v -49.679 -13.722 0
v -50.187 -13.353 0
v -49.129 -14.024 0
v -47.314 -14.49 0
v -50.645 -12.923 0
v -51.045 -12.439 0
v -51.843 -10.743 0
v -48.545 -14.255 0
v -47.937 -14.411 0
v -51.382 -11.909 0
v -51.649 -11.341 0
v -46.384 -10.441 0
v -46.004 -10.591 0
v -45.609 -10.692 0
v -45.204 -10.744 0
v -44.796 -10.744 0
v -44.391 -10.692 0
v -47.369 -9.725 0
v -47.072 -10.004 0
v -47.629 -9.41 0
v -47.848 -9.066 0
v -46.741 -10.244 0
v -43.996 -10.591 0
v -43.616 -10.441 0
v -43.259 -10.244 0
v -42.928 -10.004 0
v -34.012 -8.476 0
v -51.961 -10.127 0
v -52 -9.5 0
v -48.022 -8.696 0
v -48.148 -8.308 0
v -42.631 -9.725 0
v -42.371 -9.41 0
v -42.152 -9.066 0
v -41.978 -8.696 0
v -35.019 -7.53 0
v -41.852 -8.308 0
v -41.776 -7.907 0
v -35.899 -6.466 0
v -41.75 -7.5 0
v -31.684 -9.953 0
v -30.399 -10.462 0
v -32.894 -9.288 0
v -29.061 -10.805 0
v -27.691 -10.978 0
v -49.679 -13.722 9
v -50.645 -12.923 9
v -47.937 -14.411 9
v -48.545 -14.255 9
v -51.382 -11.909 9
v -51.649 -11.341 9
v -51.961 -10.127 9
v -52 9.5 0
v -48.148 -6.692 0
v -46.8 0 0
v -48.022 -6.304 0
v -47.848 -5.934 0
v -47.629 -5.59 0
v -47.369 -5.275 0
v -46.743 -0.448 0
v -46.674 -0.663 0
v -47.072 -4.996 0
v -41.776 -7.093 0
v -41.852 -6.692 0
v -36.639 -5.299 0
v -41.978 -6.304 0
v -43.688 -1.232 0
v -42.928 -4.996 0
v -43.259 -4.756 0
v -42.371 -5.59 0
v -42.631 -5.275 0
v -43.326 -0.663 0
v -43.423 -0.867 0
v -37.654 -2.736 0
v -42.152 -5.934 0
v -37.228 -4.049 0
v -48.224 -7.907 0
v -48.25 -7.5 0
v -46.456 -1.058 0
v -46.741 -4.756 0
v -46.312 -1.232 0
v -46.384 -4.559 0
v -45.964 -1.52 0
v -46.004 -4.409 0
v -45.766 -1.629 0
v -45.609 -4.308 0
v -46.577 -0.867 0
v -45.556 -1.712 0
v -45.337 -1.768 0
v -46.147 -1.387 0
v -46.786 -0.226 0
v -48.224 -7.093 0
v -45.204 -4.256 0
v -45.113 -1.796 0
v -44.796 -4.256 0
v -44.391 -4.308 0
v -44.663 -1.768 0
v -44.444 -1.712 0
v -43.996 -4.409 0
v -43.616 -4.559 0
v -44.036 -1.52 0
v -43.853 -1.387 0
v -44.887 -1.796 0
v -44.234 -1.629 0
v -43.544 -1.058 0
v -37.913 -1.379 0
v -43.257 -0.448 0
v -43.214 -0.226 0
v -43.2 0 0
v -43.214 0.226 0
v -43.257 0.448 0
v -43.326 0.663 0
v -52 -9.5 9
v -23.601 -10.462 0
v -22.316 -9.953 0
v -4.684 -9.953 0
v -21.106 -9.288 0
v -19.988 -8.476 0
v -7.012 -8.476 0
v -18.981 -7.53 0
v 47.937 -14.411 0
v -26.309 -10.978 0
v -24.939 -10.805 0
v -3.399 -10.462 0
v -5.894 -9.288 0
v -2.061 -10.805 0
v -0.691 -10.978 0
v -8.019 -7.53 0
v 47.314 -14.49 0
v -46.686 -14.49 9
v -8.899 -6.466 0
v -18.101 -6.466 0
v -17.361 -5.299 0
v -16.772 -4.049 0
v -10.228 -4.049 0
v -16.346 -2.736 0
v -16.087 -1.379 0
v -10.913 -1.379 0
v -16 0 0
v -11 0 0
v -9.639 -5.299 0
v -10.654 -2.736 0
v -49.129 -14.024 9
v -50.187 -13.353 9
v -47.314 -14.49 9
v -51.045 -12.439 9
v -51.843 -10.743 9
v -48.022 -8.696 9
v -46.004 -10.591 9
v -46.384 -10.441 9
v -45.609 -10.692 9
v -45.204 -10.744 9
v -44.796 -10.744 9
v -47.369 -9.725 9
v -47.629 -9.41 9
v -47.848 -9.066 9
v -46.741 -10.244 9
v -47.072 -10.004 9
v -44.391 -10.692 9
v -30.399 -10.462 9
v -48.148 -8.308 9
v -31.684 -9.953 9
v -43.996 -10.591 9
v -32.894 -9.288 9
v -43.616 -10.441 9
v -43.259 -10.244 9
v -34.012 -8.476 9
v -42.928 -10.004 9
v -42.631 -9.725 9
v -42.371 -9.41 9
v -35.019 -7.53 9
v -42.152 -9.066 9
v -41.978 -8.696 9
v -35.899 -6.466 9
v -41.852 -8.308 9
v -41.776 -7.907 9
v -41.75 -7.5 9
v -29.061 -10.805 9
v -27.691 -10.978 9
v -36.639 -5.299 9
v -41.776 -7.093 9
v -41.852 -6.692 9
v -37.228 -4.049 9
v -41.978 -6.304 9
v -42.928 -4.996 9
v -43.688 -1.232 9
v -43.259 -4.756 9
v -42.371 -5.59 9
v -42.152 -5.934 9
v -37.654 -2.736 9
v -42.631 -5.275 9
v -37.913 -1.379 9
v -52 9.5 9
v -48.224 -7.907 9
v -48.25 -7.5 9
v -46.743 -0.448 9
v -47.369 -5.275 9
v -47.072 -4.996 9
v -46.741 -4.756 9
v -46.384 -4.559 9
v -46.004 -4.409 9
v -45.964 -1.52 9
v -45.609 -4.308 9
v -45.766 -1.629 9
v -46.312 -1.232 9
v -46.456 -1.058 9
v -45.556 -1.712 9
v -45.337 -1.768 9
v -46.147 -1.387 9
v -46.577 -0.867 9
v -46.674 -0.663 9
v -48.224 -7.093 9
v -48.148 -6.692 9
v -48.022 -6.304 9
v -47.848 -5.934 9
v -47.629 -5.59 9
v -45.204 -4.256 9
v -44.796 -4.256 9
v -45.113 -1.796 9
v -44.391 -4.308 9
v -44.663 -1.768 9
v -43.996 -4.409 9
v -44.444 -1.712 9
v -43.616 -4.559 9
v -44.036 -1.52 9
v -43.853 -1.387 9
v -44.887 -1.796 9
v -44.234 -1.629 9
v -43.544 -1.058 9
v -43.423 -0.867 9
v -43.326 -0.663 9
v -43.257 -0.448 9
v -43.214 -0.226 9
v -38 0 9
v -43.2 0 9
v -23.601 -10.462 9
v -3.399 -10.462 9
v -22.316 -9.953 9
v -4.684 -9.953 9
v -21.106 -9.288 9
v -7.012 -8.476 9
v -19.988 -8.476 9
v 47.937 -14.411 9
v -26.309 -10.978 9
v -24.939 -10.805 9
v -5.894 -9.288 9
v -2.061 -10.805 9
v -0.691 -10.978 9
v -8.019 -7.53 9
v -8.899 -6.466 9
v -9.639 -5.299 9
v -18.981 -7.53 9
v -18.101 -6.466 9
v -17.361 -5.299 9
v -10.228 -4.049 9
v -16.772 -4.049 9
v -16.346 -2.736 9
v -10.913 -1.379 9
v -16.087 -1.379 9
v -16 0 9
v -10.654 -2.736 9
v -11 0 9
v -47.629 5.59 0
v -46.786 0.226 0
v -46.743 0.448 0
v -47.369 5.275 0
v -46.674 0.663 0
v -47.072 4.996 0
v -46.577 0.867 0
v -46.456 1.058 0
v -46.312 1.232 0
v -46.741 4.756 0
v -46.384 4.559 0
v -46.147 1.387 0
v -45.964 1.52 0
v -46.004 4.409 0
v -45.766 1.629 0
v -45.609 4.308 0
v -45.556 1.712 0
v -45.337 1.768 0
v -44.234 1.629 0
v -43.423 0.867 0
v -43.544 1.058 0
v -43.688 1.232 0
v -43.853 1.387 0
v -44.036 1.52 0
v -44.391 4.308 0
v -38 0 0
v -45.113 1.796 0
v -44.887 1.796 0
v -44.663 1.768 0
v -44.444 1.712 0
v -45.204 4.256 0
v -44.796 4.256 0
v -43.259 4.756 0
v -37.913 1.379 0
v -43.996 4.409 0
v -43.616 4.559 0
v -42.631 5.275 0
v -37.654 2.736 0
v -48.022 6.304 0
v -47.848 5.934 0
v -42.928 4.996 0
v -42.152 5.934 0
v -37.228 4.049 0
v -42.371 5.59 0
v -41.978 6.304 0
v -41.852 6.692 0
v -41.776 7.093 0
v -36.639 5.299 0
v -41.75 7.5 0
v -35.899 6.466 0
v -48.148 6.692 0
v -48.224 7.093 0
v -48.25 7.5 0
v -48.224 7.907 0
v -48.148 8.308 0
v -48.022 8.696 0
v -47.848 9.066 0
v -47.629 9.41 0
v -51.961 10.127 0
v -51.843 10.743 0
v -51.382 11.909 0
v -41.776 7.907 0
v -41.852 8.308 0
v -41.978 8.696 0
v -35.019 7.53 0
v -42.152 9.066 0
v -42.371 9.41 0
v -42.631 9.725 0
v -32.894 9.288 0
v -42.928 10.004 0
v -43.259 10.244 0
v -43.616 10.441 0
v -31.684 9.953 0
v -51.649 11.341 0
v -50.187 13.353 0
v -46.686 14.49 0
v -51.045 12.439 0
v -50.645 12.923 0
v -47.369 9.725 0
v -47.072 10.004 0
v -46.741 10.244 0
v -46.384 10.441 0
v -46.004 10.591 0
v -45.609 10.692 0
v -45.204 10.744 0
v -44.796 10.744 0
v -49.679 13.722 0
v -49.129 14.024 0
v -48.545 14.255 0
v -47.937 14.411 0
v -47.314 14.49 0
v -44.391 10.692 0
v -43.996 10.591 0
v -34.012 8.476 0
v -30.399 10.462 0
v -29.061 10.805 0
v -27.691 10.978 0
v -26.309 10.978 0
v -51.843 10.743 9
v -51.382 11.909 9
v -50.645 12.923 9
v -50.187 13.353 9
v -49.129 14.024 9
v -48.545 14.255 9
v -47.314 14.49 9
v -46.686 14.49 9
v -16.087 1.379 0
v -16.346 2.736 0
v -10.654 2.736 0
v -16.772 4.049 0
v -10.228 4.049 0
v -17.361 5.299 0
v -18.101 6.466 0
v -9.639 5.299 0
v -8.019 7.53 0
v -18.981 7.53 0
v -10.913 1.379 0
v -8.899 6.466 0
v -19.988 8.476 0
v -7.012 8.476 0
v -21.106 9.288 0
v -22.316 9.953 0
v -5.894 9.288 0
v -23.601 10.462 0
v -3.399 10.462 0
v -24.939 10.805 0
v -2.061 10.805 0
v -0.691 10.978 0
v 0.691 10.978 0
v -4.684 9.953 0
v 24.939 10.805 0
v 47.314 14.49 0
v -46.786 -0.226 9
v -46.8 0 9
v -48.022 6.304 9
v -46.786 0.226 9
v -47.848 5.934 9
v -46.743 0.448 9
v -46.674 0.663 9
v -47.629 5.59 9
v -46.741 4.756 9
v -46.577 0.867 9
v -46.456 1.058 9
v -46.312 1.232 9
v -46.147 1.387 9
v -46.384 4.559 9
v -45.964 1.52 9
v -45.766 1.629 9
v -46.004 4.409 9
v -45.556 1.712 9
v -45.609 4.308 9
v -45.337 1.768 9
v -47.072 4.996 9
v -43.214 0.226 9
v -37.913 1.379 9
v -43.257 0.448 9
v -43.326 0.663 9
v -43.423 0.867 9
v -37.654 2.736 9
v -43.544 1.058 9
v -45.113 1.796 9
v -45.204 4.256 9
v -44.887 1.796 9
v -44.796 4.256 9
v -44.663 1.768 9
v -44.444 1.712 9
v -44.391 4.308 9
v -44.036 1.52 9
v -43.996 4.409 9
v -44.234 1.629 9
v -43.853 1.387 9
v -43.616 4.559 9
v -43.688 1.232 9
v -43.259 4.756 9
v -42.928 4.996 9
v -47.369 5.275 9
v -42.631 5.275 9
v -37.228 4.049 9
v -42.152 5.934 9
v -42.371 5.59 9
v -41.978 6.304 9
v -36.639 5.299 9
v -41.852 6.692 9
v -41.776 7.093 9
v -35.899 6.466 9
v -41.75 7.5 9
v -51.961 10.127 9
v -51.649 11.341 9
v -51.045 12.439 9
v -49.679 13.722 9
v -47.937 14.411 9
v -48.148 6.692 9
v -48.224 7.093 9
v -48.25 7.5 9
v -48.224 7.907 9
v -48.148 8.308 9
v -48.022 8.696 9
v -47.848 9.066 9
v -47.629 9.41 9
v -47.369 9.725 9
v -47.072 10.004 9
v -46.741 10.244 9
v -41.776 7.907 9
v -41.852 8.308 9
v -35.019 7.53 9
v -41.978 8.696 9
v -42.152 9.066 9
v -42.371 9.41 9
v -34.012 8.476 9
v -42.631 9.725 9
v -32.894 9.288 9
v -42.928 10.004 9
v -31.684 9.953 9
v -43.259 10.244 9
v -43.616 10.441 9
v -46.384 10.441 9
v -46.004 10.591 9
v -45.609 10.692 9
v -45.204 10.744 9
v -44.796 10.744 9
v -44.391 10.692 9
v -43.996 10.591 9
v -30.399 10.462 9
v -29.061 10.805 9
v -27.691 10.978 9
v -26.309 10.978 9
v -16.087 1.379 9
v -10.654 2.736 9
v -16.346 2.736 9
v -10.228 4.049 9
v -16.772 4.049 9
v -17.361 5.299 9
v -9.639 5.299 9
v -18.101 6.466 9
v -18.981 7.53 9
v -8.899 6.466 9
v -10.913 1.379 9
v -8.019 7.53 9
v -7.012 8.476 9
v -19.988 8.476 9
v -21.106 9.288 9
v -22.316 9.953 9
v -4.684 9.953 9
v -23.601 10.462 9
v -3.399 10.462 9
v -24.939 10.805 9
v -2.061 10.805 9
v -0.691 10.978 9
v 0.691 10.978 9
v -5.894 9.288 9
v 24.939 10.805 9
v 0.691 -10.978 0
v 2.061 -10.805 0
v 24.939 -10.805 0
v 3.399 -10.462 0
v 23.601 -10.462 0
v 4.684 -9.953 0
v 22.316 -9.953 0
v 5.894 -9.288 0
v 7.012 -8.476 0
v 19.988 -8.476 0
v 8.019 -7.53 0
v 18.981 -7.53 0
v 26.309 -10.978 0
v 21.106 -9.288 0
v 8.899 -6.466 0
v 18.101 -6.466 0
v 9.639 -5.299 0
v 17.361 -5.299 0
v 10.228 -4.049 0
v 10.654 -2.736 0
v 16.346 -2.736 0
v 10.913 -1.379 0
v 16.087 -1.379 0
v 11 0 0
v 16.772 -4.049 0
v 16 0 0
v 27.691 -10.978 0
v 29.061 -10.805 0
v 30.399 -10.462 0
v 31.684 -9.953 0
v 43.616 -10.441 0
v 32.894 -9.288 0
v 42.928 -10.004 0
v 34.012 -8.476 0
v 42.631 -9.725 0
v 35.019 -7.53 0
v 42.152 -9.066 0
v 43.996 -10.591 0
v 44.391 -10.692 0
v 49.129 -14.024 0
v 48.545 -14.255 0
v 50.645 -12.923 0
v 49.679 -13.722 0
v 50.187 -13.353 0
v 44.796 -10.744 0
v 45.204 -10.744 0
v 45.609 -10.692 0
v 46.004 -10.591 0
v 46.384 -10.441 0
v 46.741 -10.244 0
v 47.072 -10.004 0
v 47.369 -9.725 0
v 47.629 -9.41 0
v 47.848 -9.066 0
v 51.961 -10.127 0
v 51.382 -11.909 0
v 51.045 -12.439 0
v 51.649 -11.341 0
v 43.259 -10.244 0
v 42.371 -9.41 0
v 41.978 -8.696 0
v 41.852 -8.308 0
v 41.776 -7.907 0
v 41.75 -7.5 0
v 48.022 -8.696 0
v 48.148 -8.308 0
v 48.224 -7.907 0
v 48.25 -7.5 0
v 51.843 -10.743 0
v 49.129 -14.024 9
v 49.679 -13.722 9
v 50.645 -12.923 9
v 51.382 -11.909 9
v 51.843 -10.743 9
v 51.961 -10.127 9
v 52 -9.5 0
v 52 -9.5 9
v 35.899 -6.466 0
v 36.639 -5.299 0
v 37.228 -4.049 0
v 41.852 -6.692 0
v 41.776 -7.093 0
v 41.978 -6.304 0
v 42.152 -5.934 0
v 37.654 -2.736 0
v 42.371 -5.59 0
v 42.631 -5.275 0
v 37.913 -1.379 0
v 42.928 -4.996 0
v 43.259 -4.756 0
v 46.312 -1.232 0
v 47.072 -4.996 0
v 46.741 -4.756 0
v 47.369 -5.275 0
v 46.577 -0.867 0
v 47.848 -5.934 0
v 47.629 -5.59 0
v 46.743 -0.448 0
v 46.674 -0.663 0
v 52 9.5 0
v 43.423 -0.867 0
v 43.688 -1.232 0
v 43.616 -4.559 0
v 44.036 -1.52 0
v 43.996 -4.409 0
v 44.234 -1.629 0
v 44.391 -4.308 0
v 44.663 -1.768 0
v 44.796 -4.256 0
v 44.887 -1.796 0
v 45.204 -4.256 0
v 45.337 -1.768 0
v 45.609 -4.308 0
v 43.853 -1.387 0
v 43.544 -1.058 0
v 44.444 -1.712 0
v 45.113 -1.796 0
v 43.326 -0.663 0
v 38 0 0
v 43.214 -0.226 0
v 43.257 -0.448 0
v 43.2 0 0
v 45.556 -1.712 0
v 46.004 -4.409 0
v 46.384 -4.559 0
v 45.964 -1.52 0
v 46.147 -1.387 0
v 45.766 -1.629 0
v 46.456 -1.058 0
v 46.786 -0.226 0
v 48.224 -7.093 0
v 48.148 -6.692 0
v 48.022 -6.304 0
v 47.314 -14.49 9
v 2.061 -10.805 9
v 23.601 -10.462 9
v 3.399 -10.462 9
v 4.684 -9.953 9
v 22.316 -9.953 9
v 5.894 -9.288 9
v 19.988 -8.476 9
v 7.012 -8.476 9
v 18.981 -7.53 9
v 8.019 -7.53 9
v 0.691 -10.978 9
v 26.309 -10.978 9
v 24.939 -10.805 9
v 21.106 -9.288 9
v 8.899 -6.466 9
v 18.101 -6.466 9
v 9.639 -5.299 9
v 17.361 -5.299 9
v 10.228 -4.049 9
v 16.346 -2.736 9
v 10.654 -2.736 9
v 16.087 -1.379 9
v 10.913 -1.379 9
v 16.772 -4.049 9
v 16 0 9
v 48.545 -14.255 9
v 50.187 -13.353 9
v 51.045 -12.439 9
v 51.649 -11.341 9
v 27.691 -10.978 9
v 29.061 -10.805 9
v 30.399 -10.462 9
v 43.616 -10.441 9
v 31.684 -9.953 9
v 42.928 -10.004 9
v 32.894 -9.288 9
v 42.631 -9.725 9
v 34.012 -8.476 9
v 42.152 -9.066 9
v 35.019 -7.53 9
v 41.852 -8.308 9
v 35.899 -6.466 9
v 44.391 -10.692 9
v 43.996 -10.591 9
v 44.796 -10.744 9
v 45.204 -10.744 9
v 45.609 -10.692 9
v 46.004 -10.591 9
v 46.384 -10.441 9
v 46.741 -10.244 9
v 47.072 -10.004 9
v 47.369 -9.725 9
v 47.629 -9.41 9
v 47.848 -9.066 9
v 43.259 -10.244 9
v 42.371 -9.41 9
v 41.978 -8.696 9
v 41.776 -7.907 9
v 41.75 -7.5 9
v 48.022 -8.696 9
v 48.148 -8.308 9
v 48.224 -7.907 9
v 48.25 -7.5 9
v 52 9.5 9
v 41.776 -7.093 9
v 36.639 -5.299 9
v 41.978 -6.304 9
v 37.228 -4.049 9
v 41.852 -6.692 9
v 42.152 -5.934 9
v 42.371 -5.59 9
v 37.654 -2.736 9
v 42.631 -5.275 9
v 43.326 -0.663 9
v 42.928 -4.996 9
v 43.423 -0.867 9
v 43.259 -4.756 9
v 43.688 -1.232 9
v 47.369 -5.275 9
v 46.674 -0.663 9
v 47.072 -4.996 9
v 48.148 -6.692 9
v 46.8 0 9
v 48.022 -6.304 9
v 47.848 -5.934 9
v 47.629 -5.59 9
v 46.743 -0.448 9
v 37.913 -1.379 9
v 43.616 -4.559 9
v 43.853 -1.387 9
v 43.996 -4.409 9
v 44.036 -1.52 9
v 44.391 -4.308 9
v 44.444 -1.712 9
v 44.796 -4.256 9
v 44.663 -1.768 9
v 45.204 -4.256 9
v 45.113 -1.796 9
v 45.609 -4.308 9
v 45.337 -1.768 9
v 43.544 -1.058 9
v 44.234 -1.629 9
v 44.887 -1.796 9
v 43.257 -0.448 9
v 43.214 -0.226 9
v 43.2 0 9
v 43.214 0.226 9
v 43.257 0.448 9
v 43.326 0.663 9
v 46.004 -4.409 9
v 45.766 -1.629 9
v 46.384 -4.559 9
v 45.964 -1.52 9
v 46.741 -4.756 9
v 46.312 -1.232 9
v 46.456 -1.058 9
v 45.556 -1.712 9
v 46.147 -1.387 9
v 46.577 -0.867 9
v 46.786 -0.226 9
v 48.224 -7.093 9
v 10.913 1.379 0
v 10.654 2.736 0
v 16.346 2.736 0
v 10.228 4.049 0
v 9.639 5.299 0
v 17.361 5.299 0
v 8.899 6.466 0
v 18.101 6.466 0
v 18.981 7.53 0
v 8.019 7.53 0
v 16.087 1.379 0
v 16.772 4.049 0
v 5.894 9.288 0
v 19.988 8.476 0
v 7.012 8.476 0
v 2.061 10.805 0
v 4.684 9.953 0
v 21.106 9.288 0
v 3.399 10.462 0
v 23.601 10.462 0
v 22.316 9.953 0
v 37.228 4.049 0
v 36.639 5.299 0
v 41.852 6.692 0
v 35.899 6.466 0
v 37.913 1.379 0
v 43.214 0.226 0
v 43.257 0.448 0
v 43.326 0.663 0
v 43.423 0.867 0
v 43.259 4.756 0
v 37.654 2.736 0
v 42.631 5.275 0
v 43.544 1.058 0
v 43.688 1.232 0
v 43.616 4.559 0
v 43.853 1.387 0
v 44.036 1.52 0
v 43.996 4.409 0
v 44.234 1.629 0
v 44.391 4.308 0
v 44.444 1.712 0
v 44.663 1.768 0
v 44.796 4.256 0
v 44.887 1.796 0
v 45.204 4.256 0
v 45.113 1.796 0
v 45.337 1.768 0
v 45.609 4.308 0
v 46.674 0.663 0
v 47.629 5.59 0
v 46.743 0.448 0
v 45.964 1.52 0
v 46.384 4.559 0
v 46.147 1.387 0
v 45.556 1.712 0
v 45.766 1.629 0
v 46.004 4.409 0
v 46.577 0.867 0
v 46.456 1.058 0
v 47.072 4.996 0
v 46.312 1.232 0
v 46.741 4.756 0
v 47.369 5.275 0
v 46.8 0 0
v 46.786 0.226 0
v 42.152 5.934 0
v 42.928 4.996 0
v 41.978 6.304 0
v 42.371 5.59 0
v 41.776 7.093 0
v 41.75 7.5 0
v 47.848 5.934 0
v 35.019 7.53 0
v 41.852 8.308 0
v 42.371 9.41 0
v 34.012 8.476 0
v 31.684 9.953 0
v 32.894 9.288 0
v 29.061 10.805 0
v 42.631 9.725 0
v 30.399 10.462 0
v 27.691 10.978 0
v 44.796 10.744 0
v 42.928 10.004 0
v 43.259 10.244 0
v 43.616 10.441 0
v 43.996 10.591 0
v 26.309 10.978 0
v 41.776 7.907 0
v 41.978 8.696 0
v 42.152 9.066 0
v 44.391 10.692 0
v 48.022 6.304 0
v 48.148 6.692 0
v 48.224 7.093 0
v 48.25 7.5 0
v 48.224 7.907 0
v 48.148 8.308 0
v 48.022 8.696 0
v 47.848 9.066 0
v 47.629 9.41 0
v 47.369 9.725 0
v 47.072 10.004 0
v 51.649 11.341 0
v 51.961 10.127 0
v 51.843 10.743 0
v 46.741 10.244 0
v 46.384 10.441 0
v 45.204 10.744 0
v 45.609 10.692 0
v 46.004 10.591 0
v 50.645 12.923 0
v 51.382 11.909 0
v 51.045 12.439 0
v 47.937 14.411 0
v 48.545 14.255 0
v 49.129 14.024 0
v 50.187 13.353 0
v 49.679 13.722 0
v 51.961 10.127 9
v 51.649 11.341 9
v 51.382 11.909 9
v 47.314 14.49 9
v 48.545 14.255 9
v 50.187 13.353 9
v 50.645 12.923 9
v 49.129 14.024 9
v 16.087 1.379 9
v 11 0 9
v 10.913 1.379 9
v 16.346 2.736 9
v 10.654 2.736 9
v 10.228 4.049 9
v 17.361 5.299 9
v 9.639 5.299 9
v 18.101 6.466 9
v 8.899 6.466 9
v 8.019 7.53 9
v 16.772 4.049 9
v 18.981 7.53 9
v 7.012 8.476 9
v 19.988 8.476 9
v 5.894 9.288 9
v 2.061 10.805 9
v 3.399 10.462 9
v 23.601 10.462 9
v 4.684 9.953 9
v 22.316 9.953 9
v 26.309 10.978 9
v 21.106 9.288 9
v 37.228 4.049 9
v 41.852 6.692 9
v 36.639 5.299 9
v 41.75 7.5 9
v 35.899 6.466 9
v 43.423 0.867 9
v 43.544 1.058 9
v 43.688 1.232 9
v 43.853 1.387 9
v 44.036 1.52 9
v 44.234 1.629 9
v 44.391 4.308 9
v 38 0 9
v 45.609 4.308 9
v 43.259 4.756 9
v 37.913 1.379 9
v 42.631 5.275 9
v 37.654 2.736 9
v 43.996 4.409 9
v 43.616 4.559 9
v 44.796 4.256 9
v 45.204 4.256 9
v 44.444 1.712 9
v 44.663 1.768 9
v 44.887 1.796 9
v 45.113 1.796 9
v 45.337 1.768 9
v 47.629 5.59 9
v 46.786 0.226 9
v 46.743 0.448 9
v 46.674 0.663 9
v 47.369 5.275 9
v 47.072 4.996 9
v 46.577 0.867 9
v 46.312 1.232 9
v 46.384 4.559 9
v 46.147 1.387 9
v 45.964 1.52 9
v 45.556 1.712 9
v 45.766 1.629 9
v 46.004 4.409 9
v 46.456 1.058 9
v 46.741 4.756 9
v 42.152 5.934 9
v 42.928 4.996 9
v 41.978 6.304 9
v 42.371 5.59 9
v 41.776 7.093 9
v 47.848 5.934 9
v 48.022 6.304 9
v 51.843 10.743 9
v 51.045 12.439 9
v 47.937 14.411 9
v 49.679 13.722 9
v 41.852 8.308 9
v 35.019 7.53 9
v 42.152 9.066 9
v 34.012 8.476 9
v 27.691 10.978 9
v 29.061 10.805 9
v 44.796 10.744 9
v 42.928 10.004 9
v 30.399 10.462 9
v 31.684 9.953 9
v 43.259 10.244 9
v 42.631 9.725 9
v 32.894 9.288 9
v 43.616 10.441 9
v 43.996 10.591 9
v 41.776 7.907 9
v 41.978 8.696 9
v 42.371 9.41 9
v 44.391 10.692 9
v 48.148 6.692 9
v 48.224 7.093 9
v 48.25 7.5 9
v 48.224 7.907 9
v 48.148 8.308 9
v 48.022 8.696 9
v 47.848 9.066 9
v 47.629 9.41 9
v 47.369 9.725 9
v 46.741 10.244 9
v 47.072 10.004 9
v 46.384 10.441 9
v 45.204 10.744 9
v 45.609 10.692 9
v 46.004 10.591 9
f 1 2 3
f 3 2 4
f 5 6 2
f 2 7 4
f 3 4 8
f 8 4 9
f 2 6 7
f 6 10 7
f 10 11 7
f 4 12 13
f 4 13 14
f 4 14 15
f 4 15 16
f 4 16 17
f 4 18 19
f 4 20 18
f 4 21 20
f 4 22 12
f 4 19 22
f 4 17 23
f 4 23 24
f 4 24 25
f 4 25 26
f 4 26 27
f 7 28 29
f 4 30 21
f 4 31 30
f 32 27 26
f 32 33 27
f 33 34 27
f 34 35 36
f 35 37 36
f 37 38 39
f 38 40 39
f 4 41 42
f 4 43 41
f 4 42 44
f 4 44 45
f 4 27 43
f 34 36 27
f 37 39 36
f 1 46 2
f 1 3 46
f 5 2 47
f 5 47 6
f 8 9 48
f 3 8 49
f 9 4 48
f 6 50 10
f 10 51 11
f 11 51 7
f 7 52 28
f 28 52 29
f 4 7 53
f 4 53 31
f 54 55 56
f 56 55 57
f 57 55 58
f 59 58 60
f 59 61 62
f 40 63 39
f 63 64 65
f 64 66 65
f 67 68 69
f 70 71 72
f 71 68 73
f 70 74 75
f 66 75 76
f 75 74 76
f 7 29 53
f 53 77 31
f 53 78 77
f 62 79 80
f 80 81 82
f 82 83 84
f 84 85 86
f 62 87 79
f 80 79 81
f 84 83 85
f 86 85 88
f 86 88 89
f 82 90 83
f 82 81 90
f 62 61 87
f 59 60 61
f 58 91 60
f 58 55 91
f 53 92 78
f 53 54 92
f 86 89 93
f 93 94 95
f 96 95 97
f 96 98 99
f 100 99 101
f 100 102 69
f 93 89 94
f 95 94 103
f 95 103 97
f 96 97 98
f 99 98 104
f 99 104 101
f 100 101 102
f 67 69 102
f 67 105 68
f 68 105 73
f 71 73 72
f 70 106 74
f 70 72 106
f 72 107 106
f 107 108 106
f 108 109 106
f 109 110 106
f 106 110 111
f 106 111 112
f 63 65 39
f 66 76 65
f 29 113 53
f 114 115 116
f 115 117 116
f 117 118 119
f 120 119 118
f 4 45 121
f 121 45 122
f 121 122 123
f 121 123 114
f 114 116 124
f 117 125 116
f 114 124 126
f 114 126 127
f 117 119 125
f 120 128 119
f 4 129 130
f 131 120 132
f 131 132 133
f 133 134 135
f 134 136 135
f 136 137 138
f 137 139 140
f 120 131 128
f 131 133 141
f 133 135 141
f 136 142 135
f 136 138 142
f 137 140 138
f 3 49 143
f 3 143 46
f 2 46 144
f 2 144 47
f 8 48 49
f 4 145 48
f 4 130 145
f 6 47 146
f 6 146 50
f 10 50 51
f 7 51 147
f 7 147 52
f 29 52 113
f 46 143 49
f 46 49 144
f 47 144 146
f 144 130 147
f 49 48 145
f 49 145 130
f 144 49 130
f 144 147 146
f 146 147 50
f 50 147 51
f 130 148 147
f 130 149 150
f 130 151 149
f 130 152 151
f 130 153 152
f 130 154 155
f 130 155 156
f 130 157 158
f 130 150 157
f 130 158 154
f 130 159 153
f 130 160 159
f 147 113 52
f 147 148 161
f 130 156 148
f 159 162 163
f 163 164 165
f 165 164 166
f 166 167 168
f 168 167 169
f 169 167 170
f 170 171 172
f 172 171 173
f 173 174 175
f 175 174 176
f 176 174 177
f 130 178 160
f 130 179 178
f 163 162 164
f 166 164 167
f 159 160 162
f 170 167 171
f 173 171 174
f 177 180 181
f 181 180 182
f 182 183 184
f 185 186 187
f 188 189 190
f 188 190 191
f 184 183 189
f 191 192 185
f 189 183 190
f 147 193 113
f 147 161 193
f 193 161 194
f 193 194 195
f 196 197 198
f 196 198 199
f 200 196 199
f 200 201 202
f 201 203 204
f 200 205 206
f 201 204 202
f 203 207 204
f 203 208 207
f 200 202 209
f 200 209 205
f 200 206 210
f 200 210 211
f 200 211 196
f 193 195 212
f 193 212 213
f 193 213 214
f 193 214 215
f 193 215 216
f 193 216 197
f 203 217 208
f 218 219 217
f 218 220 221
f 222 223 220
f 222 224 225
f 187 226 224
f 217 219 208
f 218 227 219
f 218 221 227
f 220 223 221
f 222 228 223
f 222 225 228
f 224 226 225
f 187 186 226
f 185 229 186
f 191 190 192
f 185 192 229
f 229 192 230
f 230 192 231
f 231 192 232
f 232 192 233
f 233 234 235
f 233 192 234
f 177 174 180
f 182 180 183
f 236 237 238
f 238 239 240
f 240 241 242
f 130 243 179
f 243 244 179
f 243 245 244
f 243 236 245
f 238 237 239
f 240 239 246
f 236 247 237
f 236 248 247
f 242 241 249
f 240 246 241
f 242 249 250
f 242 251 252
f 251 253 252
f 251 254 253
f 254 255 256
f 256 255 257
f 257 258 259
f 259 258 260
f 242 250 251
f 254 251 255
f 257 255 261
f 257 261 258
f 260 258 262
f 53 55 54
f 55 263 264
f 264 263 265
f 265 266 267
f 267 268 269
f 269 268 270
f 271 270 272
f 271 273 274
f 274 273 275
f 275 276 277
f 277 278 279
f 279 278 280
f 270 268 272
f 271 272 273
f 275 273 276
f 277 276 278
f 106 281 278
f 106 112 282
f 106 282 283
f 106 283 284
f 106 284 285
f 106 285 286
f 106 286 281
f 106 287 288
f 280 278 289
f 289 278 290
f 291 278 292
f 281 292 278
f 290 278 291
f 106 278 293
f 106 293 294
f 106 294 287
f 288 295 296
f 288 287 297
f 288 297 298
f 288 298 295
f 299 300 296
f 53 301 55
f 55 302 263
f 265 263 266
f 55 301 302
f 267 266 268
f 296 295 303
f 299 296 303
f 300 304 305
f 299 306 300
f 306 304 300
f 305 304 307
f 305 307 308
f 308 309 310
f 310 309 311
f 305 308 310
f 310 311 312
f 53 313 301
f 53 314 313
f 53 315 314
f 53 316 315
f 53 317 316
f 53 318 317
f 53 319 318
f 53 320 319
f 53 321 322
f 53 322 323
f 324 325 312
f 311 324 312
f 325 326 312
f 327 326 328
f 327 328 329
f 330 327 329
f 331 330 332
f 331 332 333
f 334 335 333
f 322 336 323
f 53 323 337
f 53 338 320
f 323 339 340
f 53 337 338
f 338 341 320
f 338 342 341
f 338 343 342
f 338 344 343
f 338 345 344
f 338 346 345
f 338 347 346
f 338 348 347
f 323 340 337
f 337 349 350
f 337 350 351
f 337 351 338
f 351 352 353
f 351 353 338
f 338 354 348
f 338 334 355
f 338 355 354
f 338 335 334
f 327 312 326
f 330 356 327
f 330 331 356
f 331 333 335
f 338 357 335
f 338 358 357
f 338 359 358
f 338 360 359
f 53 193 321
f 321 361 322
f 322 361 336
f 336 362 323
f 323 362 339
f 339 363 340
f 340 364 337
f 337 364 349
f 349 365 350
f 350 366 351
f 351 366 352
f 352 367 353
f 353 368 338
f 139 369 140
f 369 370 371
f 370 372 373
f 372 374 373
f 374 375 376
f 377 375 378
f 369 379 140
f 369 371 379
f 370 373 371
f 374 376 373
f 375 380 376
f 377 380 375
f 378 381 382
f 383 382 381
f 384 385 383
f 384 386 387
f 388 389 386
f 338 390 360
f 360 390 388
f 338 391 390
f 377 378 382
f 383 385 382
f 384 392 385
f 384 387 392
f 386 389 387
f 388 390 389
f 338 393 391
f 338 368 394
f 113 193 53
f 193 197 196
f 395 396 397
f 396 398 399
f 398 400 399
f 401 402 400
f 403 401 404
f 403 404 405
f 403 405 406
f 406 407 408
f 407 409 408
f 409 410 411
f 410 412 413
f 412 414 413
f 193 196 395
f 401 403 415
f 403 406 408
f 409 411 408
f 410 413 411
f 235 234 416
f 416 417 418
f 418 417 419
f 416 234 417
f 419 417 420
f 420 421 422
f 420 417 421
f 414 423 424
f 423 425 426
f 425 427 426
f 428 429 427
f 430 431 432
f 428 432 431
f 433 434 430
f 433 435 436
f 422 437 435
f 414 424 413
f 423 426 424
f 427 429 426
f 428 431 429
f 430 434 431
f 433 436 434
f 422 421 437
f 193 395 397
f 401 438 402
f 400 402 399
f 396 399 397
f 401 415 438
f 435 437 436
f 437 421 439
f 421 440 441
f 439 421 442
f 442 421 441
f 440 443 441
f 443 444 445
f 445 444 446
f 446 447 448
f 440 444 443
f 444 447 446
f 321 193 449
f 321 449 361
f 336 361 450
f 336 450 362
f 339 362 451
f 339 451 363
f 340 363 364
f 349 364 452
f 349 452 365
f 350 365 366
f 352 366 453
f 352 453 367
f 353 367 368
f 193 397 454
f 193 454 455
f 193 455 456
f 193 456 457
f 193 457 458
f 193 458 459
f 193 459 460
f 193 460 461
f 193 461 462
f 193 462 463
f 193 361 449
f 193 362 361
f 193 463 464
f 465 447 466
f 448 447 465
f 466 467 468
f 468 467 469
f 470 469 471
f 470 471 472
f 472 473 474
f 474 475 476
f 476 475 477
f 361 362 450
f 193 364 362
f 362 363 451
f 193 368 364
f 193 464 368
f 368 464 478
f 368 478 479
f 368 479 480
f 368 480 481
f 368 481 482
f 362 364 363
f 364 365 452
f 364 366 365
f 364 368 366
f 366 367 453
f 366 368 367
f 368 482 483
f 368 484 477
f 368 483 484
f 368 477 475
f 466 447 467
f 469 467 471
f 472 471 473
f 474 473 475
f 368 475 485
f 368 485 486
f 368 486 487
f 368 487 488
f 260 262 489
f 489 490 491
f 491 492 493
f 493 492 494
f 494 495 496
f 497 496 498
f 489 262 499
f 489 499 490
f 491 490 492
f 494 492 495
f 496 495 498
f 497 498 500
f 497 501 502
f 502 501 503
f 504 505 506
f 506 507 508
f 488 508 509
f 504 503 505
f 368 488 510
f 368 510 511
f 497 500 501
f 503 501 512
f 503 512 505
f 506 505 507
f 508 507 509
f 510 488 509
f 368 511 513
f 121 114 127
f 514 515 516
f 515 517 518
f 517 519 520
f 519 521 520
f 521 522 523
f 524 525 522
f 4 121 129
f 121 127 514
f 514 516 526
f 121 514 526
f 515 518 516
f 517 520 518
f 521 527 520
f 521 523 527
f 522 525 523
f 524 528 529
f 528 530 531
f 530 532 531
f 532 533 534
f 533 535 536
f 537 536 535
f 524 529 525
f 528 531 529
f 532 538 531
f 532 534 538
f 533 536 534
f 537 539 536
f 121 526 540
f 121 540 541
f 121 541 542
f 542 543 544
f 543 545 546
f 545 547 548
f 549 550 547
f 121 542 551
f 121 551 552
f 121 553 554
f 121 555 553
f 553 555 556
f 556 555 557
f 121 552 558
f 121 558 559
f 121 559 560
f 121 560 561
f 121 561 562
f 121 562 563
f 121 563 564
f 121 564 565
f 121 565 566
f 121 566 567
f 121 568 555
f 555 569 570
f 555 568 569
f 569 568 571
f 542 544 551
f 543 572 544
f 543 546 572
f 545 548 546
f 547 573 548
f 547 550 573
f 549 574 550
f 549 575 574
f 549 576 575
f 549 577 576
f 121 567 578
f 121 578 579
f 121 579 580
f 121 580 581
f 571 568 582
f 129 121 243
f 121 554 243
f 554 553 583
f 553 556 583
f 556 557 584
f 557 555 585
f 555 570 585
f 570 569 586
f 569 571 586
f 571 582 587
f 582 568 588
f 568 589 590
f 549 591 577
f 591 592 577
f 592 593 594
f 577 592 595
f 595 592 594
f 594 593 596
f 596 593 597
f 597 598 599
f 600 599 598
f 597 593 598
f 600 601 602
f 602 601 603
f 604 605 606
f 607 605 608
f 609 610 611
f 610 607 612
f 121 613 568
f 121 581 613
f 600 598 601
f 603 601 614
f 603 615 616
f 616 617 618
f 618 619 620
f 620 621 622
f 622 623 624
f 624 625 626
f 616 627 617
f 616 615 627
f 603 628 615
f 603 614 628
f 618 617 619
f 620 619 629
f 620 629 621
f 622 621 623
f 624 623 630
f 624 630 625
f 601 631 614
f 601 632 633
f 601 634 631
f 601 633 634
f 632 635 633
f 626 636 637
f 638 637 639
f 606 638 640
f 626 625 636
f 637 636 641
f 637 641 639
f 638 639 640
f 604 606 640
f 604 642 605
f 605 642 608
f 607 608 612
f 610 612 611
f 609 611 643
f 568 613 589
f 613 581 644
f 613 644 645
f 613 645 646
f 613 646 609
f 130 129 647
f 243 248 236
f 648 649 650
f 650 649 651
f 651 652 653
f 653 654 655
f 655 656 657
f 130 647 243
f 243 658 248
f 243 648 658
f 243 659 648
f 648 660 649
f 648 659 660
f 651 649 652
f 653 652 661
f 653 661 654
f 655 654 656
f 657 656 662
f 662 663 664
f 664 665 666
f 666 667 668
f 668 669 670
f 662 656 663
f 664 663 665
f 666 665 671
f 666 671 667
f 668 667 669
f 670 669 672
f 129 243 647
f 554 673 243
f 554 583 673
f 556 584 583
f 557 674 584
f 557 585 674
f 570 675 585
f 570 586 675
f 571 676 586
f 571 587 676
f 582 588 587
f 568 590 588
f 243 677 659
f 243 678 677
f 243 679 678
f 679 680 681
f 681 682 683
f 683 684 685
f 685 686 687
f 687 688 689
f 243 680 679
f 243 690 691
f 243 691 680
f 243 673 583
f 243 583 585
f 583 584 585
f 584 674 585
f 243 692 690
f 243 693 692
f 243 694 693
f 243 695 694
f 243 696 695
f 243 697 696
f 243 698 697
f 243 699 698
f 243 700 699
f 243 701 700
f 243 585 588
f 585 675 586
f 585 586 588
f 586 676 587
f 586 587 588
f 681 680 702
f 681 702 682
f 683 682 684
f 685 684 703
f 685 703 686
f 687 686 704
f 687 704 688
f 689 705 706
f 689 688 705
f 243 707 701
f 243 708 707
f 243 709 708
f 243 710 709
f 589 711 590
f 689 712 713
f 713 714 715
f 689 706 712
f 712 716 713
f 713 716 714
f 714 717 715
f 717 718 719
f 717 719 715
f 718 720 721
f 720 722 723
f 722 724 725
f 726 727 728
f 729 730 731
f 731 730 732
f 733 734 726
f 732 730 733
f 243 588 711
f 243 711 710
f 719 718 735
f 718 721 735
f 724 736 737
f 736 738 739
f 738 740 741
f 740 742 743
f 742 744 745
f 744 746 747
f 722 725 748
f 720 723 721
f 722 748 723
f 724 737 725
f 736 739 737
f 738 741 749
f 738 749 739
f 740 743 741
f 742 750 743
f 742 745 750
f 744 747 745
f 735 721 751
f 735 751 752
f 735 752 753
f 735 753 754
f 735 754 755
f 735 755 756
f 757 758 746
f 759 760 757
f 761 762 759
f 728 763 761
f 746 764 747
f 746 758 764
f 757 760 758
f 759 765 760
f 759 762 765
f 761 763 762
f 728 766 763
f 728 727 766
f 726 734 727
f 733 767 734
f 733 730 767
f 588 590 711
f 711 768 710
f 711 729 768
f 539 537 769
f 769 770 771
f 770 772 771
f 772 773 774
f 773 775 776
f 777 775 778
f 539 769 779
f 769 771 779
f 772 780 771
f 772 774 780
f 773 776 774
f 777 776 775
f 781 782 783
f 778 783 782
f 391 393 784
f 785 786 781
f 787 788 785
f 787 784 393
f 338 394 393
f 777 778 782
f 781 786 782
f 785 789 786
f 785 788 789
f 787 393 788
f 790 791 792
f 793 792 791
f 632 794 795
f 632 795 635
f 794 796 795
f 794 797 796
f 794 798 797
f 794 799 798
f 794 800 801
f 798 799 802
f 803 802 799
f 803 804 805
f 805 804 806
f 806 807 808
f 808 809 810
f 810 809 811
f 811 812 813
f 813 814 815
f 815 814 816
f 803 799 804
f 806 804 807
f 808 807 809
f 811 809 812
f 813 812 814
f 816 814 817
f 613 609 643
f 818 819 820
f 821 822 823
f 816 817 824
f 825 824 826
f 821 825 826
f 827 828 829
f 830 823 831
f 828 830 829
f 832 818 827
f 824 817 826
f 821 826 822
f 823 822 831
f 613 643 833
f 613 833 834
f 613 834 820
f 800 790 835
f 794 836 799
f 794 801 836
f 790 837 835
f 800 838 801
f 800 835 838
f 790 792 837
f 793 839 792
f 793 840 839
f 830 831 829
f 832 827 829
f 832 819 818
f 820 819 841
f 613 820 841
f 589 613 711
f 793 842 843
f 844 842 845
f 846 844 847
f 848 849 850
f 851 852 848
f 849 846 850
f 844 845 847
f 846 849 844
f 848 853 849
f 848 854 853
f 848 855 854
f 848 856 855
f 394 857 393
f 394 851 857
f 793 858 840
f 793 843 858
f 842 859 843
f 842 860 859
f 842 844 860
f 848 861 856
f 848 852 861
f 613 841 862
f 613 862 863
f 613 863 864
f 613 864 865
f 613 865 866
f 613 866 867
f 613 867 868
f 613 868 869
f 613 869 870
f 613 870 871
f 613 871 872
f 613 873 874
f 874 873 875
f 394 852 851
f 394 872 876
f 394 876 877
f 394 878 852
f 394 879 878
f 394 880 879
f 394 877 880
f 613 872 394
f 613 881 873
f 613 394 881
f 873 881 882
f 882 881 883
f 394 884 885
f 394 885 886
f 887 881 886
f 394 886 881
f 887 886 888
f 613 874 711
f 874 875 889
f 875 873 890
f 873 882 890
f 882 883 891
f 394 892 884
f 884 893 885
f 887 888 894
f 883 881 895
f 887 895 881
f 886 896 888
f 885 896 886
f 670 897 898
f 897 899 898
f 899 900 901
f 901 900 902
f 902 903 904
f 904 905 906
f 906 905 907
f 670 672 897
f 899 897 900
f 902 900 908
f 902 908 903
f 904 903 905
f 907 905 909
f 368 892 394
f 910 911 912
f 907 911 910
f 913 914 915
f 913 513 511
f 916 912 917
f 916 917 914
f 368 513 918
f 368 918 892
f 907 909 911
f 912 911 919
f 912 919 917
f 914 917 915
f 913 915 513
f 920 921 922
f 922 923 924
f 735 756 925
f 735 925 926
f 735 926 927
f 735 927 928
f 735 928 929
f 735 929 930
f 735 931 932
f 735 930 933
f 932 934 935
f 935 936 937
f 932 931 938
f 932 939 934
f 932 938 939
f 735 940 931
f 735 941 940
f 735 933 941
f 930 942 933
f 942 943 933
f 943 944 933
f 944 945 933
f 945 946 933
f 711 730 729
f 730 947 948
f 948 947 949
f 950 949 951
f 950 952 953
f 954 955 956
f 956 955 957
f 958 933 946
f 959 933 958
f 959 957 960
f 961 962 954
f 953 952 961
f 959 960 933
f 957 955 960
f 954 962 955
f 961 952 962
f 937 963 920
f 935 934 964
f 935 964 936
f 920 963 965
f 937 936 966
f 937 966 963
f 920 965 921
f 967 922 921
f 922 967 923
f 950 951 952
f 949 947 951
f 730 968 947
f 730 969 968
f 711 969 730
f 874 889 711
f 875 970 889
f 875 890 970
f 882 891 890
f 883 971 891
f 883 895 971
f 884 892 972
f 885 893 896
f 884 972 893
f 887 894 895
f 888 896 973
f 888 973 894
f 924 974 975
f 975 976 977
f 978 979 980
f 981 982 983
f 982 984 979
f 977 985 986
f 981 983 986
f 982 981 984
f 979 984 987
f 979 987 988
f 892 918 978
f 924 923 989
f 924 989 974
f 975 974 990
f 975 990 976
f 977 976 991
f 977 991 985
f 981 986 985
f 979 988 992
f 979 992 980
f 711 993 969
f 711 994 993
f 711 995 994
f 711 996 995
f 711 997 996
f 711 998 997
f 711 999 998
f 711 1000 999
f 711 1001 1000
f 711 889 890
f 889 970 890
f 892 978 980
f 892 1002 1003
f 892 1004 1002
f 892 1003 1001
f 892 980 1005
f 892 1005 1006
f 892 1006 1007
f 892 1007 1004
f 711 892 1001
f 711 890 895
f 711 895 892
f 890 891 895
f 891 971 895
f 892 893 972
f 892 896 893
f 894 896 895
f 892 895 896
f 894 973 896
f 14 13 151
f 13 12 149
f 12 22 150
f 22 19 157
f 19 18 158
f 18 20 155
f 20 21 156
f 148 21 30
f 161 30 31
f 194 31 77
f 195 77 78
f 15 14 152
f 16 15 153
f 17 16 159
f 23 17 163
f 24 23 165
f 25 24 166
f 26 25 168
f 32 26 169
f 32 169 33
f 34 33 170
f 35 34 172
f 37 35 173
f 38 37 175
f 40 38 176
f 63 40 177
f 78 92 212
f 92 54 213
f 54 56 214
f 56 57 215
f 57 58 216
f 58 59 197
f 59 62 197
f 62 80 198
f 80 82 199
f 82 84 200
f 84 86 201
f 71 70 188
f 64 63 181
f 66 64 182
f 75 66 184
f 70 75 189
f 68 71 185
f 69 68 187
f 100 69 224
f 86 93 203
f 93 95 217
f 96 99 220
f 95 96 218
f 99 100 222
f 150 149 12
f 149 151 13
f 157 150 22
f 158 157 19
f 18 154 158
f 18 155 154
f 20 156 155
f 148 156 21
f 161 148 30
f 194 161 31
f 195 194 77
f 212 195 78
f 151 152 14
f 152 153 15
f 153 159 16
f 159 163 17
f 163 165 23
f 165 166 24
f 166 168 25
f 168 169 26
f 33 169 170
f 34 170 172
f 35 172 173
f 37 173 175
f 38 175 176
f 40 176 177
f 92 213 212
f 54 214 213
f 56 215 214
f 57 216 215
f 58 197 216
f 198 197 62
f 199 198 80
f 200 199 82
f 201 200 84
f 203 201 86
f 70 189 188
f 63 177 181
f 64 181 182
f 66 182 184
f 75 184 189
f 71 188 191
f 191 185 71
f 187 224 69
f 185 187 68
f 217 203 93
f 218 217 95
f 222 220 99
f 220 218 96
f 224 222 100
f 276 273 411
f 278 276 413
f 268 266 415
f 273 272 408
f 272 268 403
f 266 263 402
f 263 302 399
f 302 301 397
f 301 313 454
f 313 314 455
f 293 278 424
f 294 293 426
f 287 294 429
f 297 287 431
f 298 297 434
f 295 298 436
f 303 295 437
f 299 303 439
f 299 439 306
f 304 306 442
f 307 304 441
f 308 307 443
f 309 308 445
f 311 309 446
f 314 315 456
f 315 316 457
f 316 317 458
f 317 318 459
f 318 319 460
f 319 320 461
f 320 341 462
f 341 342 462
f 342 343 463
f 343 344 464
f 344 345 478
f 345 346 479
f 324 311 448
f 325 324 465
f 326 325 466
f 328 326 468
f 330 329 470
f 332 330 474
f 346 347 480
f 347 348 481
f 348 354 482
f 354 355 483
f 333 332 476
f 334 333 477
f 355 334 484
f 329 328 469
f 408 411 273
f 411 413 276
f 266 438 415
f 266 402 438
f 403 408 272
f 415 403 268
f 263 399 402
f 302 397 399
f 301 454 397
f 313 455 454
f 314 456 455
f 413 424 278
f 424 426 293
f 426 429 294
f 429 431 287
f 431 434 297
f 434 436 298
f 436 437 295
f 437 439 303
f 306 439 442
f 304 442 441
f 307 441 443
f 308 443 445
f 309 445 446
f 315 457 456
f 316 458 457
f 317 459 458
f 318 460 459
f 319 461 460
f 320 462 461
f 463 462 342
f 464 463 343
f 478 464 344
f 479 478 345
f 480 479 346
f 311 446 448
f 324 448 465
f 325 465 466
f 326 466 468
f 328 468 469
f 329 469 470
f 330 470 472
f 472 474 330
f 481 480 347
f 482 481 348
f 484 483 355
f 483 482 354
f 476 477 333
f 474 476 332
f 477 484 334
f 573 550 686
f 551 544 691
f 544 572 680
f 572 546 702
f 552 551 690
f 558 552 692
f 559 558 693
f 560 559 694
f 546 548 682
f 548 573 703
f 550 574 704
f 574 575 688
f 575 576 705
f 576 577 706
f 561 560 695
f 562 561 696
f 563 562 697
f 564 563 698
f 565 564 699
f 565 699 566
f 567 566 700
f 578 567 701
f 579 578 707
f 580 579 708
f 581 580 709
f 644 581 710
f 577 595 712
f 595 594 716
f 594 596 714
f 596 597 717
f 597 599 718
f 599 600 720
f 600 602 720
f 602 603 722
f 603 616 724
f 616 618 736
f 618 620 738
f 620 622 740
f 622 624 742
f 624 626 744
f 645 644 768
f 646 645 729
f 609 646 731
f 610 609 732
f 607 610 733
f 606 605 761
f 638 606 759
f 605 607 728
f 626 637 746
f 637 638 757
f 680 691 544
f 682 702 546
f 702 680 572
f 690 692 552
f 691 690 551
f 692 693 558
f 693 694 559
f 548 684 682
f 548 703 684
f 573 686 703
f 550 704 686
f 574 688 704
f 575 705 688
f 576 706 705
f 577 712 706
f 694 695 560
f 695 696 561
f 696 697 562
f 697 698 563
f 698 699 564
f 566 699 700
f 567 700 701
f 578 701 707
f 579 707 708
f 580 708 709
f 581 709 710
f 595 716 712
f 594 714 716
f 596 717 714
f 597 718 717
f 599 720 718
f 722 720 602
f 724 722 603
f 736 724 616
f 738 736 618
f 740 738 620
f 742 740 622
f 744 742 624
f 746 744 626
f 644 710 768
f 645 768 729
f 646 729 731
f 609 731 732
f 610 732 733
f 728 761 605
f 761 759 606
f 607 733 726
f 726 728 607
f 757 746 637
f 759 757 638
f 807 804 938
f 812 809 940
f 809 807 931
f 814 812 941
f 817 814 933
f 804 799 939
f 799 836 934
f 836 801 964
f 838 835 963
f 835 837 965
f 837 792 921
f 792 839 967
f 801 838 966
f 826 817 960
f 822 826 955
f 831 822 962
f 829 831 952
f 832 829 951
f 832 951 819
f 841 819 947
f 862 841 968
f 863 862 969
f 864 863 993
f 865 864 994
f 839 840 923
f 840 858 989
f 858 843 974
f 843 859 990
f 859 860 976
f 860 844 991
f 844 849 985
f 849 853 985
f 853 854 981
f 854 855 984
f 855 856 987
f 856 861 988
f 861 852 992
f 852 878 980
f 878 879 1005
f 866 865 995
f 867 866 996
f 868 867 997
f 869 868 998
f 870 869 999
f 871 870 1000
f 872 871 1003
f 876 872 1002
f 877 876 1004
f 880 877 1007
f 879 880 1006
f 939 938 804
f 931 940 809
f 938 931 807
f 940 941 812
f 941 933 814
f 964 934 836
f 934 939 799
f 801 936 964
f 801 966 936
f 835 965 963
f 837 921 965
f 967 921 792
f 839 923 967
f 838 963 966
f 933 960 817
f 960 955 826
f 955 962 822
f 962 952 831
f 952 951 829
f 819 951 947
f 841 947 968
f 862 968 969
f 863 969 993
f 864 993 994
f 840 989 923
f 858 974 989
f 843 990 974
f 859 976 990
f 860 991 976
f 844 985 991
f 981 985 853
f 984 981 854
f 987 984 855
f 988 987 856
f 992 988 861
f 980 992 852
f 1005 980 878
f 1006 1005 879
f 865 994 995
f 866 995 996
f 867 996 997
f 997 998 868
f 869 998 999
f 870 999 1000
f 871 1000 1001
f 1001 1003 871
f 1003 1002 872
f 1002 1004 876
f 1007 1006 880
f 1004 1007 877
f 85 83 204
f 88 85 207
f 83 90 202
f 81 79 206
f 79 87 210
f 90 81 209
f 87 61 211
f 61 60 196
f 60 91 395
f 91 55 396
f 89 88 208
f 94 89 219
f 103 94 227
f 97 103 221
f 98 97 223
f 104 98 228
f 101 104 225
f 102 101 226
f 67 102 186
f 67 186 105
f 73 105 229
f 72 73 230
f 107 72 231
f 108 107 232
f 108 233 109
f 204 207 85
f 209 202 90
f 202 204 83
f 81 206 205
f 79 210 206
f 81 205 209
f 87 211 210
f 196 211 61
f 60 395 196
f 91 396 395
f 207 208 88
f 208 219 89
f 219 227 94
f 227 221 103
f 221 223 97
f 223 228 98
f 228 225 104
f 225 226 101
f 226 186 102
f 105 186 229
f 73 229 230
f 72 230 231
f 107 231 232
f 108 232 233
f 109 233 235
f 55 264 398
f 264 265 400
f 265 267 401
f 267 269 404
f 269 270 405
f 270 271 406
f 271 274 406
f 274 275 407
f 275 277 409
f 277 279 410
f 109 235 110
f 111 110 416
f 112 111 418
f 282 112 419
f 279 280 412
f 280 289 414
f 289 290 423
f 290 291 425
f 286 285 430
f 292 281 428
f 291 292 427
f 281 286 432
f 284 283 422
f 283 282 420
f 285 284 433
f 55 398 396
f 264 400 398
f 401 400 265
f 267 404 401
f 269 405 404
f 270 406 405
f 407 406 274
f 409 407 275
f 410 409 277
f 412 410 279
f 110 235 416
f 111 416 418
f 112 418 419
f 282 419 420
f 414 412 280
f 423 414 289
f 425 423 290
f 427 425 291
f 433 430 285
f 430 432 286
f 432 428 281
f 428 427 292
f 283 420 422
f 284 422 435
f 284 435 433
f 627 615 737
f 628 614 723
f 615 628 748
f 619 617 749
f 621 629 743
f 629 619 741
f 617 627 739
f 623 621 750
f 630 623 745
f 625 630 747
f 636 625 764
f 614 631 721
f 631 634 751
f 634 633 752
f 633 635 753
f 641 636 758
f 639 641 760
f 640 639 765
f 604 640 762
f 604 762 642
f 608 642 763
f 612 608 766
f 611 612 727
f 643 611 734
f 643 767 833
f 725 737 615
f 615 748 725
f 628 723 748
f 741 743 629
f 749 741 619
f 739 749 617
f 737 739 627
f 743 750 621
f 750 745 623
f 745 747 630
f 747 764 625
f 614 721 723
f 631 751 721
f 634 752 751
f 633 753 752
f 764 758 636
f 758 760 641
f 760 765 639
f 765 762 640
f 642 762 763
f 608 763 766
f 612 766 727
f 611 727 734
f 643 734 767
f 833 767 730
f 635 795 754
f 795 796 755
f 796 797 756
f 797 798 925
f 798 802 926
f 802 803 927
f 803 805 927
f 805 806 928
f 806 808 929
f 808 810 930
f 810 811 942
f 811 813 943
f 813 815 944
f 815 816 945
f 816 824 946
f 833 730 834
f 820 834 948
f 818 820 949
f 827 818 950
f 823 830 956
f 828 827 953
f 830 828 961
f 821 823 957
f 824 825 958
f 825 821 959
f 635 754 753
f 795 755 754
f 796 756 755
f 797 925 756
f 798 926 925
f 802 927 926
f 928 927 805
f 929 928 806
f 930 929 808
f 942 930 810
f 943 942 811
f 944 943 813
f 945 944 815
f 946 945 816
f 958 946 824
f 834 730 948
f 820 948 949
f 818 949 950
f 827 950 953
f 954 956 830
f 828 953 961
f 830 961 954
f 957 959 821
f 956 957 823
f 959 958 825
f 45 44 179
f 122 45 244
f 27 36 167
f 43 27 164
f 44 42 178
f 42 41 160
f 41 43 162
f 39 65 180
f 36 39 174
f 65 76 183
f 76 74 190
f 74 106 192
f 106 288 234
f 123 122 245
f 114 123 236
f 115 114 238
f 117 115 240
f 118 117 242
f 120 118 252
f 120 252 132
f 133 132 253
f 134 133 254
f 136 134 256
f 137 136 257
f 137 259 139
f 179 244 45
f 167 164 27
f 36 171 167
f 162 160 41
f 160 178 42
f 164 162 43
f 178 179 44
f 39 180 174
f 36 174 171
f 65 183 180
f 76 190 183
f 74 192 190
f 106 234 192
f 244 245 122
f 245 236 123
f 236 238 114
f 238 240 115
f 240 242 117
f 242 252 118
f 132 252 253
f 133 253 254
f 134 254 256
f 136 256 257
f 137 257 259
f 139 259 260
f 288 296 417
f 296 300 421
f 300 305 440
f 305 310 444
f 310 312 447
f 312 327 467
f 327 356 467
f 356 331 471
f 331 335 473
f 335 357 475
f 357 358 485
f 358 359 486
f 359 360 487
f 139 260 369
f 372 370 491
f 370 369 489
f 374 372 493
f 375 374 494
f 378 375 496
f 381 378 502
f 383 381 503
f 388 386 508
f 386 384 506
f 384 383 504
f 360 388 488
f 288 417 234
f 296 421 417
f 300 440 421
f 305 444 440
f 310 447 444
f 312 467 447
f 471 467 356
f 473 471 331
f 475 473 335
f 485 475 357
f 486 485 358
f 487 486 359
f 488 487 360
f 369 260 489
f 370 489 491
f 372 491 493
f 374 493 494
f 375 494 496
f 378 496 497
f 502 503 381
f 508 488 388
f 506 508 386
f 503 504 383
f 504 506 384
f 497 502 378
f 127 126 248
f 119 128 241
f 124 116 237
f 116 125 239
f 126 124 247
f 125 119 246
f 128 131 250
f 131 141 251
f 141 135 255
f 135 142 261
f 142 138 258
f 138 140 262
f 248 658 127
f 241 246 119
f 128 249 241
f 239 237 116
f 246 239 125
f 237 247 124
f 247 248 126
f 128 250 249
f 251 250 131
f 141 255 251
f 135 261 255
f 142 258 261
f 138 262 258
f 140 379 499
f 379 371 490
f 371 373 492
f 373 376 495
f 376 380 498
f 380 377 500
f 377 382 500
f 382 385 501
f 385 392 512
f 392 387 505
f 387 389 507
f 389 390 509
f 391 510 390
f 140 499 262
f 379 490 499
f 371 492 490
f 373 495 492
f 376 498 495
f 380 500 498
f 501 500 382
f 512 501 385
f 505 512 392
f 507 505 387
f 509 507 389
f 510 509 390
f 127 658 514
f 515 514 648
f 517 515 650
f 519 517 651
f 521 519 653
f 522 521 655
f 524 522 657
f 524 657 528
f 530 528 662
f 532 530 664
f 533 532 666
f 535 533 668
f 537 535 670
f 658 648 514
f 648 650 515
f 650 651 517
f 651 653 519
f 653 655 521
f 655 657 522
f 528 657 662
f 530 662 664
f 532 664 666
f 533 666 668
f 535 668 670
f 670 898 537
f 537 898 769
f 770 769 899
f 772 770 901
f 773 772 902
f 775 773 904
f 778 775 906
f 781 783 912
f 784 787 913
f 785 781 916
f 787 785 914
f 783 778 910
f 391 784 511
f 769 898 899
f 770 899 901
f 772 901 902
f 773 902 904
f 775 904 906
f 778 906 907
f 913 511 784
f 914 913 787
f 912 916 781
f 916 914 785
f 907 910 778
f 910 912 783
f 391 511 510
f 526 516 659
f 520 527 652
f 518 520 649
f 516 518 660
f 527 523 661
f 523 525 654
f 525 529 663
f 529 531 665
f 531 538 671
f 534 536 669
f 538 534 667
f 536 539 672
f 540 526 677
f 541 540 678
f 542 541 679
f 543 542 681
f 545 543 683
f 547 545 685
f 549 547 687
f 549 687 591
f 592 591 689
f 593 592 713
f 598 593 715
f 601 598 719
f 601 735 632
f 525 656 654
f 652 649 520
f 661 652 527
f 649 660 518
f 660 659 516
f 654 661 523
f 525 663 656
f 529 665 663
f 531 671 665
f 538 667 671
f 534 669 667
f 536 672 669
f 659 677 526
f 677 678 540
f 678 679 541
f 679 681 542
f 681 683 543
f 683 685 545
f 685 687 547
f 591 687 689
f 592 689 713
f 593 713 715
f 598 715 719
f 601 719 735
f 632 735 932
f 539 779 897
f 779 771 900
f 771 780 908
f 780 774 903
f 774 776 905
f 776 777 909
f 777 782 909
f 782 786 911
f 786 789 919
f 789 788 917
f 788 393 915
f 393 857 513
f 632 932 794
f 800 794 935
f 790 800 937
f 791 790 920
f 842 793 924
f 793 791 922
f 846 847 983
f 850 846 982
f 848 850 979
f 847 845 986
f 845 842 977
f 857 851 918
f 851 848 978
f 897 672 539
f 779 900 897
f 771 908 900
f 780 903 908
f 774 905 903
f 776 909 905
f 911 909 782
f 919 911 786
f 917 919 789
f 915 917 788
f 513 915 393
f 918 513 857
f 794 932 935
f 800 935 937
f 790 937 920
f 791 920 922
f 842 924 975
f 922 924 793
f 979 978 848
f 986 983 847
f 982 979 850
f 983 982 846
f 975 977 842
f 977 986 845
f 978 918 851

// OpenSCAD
$fn = 50;

difference() {
	union() {
		hull() {
			translate(v = [-47.0, 9.5, 0]) {
				cylinder(h = 9, r = 5);
			}
			translate(v = [47.0, 9.5, 0]) {
				cylinder(h = 9, r = 5);
			}
			translate(v = [-47.0, -9.5, 0]) {
				cylinder(h = 9, r = 5);
			}
			translate(v = [47.0, -9.5, 0]) {
				cylinder(h = 9, r = 5);
			}
		}
	}
	union() {
		translate(v = [-45.0, -7.5, 0]) {
			cylinder(h = 9, r = 3.25);
		}
		translate(v = [-45.0, 7.5, 0]) {
			cylinder(h = 9, r = 3.25);
		}
		translate(v = [45.0, -7.5, 0]) {
			cylinder(h = 9, r = 3.25);
		}
		translate(v = [45.0, 7.5, 0]) {
			cylinder(h = 9, r = 3.25);
		}
		translate(v = [-45.0, 0.0, 0]) {
			cylinder(h = 9, r = 1.8);
		}
		translate(v = [45.0, 0.0, 0]) {
			cylinder(h = 9, r = 1.8);
		}
		translate(v = [-27.0, 0, 0.0]) {
			cylinder(h = 9, r = 11.0);
		}
		cylinder(h = 9, r = 11.0);
		translate(v = [27.0, 0, 0.0]) {
			cylinder(h = 9, r = 11.0);
		}
	}
}
